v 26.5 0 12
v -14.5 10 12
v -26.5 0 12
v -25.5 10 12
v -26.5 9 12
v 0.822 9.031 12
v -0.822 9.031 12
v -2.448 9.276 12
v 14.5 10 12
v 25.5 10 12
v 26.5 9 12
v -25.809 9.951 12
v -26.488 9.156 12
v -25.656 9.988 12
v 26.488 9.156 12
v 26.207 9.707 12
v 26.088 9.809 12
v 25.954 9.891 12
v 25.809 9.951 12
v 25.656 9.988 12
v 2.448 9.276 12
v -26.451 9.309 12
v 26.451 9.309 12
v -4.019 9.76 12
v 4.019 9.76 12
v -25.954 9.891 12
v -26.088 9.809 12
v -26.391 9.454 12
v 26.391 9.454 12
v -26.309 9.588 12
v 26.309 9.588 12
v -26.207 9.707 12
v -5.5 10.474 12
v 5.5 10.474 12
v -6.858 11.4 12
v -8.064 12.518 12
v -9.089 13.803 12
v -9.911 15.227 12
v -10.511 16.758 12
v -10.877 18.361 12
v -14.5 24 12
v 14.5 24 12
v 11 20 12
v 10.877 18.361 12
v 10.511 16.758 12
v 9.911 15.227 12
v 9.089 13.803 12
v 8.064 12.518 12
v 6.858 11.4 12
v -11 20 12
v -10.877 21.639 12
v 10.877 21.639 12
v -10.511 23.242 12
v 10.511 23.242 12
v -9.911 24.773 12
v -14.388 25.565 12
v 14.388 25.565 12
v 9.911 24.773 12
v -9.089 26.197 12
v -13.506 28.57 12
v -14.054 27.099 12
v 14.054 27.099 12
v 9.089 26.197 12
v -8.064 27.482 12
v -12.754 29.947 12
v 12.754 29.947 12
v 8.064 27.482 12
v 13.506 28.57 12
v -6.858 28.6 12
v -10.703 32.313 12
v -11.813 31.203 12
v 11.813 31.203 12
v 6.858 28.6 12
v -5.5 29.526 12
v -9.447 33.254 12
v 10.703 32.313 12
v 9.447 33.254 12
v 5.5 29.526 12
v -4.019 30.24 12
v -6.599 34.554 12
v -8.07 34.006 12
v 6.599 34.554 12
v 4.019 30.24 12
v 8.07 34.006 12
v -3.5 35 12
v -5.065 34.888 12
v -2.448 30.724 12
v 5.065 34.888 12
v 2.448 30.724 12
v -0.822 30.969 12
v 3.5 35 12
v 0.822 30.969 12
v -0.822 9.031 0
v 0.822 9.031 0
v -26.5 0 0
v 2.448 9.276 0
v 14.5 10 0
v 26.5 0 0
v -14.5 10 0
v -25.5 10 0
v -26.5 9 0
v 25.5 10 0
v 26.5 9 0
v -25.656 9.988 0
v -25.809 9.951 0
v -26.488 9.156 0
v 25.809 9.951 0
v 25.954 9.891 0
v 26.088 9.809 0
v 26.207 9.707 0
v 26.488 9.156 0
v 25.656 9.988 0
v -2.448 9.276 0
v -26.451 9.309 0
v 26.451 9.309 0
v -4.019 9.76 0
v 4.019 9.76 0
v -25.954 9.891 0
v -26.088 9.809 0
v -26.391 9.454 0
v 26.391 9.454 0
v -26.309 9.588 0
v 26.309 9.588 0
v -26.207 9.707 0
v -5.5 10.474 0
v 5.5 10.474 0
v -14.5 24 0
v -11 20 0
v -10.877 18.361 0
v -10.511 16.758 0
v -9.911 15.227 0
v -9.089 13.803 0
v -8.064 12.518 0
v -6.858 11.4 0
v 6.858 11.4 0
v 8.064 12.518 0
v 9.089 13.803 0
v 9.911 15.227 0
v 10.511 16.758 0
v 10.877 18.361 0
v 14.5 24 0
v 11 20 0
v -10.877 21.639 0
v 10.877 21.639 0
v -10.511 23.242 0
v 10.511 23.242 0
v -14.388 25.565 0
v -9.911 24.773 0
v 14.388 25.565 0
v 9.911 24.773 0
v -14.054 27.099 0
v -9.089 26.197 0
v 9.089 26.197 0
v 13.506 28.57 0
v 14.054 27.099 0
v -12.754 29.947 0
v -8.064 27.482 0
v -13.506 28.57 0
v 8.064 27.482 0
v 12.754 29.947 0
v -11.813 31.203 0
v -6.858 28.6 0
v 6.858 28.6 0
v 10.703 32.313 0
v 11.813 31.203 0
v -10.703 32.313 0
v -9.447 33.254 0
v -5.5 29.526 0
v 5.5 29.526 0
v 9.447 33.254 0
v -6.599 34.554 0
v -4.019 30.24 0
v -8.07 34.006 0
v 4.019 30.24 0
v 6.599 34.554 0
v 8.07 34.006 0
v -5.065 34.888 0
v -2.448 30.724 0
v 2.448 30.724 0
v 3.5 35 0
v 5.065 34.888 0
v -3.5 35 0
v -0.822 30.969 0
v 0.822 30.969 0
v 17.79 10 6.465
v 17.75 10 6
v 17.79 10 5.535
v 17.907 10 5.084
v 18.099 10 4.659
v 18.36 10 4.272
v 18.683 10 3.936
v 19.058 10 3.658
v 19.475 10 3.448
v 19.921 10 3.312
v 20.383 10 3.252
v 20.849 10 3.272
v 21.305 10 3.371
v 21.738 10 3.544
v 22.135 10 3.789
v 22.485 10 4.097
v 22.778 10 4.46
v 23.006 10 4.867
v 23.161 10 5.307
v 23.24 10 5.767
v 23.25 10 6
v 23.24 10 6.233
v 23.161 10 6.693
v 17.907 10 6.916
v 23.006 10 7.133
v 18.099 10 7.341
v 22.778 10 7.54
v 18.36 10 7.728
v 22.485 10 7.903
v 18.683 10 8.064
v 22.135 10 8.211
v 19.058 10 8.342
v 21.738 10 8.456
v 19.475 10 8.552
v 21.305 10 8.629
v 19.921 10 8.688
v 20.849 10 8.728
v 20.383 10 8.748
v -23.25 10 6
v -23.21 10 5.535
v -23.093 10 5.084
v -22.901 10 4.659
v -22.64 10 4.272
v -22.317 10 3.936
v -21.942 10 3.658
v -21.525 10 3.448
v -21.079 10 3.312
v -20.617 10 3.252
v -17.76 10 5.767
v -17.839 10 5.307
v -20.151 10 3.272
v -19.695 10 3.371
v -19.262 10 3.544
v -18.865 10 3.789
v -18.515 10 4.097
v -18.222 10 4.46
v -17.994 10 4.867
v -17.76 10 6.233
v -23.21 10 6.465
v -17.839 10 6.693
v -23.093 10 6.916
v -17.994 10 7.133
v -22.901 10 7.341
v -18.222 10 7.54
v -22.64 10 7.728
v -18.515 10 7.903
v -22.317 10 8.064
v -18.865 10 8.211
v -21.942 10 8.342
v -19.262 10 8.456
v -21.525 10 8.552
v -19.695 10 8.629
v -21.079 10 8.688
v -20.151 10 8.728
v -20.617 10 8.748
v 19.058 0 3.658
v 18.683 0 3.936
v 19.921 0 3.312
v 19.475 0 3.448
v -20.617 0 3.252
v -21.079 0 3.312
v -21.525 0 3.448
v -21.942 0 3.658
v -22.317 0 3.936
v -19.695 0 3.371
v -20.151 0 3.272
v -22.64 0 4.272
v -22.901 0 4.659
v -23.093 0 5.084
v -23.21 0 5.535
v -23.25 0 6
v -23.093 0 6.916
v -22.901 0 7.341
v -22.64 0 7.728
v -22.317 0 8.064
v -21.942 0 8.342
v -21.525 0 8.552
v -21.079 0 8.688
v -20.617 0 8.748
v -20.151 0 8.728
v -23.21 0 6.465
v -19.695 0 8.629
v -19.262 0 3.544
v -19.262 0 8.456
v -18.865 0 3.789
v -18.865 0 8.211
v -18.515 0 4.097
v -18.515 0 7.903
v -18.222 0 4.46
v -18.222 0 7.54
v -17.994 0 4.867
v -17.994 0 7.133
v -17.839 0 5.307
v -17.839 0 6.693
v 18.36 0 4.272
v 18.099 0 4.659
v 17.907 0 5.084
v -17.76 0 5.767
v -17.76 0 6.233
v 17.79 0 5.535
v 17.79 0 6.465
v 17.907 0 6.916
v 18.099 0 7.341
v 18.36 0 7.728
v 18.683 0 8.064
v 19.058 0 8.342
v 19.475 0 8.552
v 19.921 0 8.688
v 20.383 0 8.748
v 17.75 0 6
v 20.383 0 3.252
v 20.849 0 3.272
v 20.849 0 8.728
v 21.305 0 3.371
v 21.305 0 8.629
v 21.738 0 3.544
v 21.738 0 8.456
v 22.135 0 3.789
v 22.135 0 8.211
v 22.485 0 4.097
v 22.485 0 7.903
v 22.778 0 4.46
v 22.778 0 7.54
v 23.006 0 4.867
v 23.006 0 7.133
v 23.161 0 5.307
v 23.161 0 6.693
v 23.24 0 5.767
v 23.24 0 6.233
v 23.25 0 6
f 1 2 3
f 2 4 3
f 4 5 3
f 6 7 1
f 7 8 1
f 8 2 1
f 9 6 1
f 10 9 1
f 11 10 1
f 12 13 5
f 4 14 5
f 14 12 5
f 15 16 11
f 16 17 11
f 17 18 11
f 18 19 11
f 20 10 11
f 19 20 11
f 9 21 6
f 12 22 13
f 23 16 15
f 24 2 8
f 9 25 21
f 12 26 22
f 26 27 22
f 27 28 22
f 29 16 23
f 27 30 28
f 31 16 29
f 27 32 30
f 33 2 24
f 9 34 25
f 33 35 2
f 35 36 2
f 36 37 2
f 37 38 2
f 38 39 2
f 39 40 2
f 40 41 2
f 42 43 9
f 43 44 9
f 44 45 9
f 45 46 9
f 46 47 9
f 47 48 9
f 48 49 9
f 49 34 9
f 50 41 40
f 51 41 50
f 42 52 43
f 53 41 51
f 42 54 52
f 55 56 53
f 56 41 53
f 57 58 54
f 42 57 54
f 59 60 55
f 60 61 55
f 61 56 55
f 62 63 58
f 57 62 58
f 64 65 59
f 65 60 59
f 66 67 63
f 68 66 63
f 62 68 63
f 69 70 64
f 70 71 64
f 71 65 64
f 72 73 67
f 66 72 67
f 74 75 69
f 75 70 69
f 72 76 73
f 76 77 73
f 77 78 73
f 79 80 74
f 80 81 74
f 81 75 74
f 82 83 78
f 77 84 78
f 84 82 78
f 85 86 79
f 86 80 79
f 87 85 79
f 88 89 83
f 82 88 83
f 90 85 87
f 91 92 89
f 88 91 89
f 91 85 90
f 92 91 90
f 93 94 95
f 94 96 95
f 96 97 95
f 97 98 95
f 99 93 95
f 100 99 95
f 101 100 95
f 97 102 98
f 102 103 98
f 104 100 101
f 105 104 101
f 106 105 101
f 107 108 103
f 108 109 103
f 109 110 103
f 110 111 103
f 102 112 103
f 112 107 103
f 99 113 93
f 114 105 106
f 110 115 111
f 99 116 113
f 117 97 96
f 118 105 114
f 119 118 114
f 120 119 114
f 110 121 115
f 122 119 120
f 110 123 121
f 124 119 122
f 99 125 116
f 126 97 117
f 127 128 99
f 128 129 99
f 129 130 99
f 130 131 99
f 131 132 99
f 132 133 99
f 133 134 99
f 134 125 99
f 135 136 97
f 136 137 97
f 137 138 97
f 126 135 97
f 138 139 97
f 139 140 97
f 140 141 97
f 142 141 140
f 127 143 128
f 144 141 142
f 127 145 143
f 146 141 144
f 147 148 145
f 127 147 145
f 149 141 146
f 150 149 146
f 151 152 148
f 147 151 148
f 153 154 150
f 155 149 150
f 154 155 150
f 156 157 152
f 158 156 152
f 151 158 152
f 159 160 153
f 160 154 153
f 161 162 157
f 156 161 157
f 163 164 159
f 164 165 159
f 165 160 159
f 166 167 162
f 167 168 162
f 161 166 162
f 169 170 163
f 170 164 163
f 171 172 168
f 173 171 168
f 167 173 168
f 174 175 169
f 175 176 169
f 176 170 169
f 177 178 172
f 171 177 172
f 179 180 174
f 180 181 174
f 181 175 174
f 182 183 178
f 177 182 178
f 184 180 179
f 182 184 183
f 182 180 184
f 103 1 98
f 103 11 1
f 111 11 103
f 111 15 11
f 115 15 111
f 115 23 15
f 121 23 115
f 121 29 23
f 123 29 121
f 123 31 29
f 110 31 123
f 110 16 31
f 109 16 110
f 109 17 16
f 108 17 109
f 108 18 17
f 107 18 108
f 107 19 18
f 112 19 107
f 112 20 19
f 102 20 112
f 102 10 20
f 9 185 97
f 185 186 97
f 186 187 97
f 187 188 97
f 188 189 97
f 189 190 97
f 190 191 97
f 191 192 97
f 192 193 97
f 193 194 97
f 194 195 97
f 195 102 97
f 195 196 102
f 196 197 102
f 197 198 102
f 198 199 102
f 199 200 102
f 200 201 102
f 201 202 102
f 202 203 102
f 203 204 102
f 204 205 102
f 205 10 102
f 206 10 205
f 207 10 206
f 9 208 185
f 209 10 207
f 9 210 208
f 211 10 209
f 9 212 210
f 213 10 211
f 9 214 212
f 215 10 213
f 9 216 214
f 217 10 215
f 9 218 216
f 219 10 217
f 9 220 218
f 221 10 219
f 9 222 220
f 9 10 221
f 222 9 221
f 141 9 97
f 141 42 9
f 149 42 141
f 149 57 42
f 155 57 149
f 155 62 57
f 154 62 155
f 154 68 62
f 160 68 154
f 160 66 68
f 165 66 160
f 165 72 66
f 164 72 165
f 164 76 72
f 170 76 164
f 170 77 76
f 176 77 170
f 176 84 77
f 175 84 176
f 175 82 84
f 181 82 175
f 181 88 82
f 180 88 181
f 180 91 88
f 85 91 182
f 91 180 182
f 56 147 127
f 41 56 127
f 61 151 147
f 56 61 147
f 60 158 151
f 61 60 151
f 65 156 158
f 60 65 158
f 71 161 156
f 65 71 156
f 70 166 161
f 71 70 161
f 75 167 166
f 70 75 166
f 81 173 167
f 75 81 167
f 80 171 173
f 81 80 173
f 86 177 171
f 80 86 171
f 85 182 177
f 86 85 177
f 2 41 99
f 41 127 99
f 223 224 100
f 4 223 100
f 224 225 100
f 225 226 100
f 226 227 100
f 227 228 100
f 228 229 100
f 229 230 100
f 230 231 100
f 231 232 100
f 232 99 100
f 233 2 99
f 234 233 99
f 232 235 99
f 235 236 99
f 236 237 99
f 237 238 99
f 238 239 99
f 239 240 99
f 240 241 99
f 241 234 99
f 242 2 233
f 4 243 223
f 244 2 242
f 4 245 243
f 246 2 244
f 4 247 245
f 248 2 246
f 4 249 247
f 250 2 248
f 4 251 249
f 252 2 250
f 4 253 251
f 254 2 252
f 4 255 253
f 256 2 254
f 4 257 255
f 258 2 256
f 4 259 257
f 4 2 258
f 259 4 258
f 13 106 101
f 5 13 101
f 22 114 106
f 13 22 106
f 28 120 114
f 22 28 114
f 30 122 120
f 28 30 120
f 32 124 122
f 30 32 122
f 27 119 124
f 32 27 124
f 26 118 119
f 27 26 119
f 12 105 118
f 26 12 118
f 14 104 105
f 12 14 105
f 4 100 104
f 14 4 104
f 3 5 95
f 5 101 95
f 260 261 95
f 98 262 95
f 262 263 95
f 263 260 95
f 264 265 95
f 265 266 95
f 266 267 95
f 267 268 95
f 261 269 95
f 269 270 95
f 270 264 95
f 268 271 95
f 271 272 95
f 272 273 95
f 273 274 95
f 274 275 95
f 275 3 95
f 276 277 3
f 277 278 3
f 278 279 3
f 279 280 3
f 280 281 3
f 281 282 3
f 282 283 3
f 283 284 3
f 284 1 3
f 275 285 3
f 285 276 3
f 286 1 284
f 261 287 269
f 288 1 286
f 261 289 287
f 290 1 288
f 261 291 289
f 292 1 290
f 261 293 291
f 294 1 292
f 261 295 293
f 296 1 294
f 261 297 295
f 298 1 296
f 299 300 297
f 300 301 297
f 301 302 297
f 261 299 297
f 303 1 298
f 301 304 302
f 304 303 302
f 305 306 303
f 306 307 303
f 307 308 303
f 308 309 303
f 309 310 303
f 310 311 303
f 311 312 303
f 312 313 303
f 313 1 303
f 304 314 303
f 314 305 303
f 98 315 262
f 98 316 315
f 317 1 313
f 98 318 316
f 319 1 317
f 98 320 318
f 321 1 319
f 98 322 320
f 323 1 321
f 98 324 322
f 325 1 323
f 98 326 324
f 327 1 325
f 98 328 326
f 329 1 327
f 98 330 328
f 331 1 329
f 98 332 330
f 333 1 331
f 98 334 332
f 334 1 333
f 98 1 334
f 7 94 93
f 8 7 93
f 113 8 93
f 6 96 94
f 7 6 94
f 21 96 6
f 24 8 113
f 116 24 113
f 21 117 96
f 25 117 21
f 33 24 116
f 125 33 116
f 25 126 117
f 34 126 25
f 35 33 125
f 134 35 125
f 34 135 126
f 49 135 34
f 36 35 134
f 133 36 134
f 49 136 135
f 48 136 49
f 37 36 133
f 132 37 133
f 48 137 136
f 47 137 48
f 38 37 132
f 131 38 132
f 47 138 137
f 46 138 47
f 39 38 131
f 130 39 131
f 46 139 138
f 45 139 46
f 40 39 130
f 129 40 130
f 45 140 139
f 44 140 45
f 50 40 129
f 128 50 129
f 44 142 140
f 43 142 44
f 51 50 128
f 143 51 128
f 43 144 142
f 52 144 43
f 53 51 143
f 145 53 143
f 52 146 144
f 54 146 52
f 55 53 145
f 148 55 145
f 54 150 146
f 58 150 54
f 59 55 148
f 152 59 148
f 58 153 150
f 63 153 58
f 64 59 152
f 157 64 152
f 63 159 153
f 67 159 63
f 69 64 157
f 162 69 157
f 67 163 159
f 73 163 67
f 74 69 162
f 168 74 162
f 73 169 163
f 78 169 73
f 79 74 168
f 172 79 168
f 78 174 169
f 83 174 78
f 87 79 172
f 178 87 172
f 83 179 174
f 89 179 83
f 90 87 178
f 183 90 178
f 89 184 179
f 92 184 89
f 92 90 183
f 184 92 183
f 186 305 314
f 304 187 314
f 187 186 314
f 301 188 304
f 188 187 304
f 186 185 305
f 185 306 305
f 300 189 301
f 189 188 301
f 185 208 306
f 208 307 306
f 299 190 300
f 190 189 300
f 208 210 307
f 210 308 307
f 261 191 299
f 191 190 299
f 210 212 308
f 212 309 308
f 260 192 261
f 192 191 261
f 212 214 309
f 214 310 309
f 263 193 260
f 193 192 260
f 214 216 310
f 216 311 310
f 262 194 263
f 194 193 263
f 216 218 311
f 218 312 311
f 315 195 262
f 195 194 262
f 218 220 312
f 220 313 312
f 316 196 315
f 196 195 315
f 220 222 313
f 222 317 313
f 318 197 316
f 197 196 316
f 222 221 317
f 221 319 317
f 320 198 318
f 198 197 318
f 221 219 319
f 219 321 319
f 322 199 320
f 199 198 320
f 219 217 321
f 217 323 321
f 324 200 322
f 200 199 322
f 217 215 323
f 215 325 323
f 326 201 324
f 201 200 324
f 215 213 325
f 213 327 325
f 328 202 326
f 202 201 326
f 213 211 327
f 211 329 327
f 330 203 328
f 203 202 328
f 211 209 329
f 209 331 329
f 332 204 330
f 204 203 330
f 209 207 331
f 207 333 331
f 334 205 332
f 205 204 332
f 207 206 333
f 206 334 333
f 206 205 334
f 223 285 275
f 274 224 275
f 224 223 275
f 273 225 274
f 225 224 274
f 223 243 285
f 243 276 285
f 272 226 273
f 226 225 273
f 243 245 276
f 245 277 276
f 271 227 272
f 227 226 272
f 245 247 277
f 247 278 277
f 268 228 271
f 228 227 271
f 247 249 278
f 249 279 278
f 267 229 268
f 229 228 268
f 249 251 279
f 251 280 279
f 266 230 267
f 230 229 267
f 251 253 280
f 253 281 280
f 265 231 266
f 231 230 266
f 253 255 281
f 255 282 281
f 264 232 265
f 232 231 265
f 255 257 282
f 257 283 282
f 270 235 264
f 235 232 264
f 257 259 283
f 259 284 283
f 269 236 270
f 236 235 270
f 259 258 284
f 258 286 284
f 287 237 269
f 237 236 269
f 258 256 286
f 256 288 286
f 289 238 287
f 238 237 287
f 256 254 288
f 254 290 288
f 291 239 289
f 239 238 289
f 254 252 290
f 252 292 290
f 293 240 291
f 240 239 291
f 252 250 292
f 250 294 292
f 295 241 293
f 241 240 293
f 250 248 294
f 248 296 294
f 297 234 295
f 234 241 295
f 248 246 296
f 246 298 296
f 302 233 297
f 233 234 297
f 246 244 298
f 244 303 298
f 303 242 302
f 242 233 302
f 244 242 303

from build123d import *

# Parameters (mm, degrees)
SKETCH_1_R          = 11
EXTRUDE_1_DEPTH     = 12
SKETCH_2_R          = 2.75
CUT_EXTRUDE_1_DEPTH = 39.356876828


with BuildPart() as part:
    # 草图1 → 凸台-拉伸1 (new body)
    with BuildSketch(Plane.XY):
        with BuildLine():
            Line((14.5, 10), (25.5, 10))
            ThreePointArc((25.5, 10), (26.207106781, 9.707106781), (26.5, 9))
            Line((26.5, 9), (26.5, 0))
            Line((26.5, 0), (-26.5, 0))
            Line((-26.5, 0), (-26.5, 9))
            ThreePointArc((-26.5, 9), (-26.207106781, 9.707106781), (-25.5, 10))
            Line((-25.5, 10), (-14.5, 10))
            Line((-14.5, 10), (-14.5, 24))
            ThreePointArc((-14.5, 24), (-11.278174593, 31.778174593), (-3.5, 35))
            Line((-3.5, 35), (3.5, 35))
            ThreePointArc((3.5, 35), (11.278174593, 31.778174593), (14.5, 24))
            Line((14.5, 24), (14.5, 10))
        make_face()
        with Locations((0, 20)):
            Circle(SKETCH_1_R, mode=Mode.SUBTRACT)
    extrude(amount=EXTRUDE_1_DEPTH)

    # 草图2 → 切除-拉伸1 (cut, through all)
    with BuildSketch(Plane(origin=(0, 10, 0), x_dir=(1, 0, 0), z_dir=(0, 1, 0))):
        with Locations(Location((-20.5, -6, 0), (0, 0, 180))):
            Circle(SKETCH_2_R)
        with Locations((20.5, -6)):
            Circle(SKETCH_2_R)
    extrude(amount=-CUT_EXTRUDE_1_DEPTH, mode=Mode.SUBTRACT)


solid = part.part
